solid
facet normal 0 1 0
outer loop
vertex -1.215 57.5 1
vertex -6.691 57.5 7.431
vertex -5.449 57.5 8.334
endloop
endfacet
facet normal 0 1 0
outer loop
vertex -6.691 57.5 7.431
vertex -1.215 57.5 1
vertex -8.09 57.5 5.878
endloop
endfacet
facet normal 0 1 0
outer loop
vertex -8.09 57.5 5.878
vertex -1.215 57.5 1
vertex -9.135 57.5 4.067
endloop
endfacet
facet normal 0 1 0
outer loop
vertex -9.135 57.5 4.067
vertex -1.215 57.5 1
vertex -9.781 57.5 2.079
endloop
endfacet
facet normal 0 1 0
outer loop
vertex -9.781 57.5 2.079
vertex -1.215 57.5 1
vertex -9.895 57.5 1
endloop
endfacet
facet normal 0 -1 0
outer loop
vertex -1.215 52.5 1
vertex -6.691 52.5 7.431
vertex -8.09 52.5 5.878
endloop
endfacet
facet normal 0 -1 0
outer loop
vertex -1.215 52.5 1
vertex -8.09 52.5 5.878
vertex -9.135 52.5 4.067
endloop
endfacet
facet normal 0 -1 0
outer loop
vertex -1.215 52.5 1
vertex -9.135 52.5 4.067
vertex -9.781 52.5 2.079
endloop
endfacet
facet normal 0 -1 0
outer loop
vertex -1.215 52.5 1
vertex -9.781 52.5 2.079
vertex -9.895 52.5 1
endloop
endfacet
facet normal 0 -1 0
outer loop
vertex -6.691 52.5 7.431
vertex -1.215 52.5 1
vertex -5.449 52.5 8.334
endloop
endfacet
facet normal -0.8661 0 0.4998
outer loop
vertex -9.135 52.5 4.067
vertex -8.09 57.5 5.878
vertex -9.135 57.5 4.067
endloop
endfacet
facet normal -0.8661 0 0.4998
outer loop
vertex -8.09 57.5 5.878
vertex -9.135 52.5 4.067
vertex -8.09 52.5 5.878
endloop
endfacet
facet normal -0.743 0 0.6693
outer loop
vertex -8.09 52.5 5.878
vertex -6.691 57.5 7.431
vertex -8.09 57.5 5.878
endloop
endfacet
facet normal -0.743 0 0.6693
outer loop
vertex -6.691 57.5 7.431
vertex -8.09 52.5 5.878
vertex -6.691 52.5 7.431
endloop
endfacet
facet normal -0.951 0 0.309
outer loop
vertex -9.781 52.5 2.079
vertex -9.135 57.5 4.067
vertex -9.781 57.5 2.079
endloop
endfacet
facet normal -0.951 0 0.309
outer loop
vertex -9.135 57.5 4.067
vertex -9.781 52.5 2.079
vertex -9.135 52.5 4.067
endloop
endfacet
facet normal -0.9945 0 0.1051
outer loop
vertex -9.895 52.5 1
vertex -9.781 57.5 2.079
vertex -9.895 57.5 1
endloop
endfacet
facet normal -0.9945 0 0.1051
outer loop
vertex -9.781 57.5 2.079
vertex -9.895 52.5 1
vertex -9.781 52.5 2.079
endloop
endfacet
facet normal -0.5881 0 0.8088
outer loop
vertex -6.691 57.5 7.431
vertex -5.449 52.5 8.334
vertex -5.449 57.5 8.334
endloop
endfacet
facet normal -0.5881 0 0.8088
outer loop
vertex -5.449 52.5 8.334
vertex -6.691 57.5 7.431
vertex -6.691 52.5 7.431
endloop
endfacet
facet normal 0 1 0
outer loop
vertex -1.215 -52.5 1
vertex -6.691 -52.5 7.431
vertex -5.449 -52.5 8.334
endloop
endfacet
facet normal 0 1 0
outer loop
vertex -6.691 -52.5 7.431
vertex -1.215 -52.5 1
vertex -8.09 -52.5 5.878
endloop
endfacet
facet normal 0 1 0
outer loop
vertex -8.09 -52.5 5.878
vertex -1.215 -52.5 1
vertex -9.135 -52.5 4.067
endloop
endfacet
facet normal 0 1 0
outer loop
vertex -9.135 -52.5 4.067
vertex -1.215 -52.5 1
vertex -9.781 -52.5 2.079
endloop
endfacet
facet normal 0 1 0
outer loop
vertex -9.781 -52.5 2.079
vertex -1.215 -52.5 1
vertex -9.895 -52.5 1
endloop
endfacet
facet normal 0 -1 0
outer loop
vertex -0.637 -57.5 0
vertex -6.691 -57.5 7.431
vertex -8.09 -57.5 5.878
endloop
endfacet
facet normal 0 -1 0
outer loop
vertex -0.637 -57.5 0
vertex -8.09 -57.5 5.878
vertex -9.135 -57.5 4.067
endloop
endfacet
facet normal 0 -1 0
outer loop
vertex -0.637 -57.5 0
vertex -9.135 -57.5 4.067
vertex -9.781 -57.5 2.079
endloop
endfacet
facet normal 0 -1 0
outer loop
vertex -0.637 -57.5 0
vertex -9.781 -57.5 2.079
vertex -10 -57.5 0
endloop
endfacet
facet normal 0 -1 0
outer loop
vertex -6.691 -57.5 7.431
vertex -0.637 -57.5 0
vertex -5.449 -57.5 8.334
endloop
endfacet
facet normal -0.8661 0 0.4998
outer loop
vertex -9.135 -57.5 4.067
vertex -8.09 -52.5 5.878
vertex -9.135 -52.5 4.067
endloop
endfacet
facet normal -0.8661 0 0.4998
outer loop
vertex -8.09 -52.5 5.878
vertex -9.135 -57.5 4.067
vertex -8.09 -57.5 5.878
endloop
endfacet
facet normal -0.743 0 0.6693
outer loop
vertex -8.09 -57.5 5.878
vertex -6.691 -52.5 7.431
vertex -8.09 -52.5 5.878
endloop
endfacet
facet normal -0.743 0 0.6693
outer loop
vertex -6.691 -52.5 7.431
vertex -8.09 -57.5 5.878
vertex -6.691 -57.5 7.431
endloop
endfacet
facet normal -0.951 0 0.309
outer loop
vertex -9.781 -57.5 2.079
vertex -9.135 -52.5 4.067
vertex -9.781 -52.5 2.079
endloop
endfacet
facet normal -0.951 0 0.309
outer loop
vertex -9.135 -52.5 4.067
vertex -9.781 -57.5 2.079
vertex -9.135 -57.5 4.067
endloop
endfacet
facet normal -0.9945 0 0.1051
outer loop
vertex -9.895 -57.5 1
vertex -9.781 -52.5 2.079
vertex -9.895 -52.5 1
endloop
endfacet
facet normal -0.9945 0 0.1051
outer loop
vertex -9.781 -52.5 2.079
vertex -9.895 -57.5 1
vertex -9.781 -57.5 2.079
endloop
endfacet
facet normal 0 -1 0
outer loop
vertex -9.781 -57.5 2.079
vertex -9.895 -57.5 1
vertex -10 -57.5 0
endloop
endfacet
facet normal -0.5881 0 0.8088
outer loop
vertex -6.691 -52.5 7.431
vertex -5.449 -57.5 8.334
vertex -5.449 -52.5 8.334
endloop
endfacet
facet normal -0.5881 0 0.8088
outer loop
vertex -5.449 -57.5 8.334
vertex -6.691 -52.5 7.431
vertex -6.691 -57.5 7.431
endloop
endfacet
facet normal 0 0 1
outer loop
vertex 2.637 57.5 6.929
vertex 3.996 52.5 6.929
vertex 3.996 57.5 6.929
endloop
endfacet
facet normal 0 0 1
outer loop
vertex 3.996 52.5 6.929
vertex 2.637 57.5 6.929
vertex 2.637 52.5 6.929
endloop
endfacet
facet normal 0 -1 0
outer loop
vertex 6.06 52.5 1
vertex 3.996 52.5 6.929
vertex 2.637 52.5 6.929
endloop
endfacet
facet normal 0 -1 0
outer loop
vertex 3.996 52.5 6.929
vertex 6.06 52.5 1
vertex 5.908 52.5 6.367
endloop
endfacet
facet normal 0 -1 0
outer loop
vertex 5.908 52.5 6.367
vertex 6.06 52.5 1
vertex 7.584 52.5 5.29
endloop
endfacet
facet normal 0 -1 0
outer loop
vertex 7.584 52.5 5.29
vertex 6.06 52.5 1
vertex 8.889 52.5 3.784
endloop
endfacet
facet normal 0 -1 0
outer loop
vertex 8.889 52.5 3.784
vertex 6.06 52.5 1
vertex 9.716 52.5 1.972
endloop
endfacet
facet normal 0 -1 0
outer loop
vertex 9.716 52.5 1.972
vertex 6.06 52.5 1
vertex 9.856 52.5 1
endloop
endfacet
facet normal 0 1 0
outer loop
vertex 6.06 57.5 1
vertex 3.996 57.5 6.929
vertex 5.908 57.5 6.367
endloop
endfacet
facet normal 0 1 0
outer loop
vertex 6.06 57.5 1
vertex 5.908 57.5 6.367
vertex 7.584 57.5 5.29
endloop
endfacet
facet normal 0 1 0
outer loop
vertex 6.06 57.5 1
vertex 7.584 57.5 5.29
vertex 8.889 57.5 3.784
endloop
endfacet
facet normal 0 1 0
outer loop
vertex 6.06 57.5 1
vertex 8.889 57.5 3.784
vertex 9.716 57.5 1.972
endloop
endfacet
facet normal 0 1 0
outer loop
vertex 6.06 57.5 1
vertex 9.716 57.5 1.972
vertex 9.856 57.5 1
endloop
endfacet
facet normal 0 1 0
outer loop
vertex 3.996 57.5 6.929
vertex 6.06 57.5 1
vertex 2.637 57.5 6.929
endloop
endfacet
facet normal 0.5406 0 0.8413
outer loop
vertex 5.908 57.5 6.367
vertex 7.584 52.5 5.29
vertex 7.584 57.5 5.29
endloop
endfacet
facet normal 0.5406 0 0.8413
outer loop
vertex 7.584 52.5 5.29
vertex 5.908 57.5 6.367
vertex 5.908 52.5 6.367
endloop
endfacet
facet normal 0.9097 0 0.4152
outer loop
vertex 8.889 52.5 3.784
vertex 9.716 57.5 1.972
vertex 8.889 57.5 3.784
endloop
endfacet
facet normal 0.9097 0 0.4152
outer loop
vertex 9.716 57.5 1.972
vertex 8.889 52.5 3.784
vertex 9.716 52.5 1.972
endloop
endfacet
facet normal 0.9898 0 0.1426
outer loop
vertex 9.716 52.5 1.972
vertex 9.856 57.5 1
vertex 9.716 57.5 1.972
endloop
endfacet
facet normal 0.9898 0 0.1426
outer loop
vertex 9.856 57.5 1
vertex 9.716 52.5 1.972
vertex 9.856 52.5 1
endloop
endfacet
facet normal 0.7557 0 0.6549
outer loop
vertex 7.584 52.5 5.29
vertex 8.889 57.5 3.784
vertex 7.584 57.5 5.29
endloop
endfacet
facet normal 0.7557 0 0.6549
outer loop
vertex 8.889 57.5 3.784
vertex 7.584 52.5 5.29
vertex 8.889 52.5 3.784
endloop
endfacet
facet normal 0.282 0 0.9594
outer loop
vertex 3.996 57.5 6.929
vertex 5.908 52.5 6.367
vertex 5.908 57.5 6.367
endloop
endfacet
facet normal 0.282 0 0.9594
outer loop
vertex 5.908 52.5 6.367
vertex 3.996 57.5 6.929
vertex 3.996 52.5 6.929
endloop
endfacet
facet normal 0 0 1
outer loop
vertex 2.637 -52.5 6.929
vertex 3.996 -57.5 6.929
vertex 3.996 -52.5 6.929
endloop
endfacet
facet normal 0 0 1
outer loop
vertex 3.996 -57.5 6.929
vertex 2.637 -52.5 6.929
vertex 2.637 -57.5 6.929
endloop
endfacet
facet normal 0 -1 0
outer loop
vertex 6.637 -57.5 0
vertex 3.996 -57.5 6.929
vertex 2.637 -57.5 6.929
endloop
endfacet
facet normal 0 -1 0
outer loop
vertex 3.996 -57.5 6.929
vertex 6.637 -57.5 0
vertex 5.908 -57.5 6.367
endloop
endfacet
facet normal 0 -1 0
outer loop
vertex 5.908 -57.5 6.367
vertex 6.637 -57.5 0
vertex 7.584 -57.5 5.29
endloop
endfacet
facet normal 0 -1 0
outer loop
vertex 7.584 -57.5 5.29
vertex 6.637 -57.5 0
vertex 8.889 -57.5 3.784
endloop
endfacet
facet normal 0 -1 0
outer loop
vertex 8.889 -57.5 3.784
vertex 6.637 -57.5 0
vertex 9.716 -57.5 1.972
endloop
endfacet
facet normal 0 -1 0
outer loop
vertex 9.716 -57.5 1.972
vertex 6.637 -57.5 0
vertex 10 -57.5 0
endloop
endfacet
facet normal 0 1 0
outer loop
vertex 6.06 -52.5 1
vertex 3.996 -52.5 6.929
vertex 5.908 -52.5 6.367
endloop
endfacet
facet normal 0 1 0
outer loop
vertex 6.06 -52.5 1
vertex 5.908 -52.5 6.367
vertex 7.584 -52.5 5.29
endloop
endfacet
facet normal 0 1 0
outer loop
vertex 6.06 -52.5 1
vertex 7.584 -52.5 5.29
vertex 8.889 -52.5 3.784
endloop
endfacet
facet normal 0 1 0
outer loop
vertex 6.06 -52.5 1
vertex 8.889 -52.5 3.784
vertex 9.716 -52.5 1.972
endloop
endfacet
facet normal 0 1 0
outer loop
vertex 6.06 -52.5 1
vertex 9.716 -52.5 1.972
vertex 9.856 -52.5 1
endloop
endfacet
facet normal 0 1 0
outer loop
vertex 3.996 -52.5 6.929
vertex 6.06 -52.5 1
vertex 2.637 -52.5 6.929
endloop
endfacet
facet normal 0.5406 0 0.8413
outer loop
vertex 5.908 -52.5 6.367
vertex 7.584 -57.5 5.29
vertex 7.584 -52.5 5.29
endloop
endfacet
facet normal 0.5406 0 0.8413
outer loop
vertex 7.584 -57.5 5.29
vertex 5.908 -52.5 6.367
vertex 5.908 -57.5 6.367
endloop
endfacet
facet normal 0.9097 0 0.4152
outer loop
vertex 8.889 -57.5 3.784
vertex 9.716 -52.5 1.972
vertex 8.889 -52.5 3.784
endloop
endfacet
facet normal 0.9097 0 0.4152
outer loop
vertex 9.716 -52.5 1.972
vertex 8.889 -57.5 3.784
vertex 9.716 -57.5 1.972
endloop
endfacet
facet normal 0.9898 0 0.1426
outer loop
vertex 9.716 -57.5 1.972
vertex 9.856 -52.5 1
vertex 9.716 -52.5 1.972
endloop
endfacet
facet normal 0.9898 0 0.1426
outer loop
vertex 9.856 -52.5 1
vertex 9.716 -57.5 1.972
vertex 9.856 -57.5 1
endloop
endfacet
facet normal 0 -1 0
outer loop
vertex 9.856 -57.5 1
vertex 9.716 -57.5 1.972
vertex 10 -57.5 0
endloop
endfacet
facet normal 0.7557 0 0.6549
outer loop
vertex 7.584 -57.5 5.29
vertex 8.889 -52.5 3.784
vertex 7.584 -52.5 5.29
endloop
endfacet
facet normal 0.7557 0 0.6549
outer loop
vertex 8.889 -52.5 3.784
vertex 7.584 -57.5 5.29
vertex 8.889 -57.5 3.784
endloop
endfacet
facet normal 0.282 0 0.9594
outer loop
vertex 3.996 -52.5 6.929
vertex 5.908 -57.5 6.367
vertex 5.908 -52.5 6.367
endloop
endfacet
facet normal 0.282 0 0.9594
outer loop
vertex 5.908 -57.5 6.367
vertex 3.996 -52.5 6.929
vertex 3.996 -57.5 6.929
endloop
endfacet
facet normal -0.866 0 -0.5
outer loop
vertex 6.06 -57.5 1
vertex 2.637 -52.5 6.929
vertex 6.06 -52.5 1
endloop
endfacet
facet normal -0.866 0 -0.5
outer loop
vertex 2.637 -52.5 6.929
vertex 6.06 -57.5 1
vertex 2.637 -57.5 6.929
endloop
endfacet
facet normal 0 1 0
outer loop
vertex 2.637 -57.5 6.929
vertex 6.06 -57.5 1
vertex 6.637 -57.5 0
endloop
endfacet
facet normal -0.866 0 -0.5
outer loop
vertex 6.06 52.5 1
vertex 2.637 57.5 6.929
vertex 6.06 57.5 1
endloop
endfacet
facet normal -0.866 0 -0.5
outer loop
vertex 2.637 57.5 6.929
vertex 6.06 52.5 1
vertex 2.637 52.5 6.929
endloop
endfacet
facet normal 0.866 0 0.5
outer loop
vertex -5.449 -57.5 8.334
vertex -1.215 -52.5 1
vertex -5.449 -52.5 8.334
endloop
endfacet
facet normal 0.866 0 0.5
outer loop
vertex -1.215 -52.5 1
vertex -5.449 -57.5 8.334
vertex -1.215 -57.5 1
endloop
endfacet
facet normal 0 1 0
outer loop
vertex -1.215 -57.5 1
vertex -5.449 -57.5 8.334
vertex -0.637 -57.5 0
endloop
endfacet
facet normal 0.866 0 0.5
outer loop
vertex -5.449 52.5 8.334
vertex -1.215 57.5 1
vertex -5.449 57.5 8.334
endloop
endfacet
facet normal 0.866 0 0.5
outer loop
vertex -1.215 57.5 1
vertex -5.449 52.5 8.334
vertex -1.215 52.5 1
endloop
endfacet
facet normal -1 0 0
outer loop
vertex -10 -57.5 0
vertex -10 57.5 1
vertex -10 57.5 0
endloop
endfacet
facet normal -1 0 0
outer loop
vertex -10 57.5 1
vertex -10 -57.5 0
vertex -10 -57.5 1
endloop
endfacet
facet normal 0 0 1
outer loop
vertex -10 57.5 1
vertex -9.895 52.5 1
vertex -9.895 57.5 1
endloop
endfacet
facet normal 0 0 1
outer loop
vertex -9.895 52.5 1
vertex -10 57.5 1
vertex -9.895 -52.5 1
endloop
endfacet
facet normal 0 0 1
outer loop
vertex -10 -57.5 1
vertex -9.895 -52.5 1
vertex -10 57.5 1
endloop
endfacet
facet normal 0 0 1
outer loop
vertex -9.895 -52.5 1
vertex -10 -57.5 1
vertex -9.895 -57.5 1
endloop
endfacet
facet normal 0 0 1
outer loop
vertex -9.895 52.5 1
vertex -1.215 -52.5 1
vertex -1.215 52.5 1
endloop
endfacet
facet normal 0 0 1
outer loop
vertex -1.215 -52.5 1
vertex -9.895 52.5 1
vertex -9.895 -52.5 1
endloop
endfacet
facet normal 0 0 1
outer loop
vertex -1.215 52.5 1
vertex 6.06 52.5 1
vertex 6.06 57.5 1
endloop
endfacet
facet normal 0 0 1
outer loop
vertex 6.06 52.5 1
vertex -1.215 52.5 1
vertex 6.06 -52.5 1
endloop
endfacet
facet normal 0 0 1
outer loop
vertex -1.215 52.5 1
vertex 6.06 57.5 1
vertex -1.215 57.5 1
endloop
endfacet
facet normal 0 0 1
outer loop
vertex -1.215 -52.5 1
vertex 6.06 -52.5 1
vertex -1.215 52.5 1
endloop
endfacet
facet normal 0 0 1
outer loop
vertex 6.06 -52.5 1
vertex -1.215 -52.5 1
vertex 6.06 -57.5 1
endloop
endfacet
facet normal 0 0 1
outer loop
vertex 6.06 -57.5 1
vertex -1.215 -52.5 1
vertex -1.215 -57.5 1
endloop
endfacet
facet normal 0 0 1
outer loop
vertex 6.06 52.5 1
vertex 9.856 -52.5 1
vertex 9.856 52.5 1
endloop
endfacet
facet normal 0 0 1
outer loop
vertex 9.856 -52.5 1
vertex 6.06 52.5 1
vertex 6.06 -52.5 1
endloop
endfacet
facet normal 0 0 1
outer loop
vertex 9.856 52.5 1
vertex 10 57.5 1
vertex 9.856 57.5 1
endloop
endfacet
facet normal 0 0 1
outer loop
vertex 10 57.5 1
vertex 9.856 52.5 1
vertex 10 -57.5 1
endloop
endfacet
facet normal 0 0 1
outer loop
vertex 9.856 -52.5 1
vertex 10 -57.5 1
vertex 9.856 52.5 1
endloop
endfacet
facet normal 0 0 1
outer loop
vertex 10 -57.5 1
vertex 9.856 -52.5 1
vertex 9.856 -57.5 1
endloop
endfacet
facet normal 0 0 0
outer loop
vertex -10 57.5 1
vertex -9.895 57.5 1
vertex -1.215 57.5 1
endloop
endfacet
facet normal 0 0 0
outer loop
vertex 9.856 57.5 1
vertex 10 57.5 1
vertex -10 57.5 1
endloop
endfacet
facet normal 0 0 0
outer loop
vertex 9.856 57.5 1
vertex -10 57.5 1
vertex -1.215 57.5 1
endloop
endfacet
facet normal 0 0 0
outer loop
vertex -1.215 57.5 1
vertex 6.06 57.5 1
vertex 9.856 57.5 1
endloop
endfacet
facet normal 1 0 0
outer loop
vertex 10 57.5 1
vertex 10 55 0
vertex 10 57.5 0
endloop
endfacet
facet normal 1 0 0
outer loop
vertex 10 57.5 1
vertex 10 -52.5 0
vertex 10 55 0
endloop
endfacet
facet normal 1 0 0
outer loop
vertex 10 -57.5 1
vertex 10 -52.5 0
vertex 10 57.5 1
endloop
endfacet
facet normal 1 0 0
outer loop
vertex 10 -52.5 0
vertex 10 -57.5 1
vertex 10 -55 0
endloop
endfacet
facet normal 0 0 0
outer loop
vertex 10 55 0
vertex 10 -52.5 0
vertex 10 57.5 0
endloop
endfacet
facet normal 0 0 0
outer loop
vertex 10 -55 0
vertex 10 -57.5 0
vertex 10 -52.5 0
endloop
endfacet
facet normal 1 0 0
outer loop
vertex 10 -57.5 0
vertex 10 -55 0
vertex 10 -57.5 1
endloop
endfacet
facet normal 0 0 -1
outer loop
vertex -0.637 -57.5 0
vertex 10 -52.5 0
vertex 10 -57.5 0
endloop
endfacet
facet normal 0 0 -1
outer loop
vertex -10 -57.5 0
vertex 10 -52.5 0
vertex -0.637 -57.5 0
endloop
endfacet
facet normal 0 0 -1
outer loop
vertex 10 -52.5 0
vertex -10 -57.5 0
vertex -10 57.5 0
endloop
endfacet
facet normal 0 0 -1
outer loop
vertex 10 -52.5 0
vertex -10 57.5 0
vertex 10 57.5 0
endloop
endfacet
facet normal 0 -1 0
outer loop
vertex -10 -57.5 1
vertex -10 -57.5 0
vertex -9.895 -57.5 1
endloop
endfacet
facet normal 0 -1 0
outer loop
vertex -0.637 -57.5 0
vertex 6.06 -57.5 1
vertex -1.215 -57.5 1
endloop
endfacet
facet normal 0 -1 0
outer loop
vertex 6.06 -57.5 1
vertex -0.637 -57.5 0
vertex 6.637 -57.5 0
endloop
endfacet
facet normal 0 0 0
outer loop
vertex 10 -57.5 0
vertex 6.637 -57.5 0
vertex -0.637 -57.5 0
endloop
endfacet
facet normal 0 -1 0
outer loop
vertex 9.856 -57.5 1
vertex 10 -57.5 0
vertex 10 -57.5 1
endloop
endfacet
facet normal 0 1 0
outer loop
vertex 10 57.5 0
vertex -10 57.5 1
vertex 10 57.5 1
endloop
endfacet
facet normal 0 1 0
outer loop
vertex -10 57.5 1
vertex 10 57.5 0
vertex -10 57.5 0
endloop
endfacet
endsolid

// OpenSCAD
//translate([-10, -70, -1]) cube([20, 140, 1]);
translate([-10, -57.5, 0]) cube([20, 115, 1]);


difference() {
    topBase();
    ipod(30, 3);
}


module topBase() {


translate([3, 55, 0]) rotate([0, 0, 180]) foot(-30, -1, 7);
translate([3, -55, 0]) rotate([0, 0, 180]) foot(-30, -1, 7);


translate([0, 55, 0]) foot(30, 3, 10);
translate([0, -55, 0]) foot(30, 3, 10);
}



module ipod(angle, offset) {
thickness = 6.3;
length = 123.4;
    translate([offset, 0, 0])
    rotate([0, -angle, 0])
translate([-thickness/2, -length/2, -4]) color("red") cube([thickness, length, 60]);

}

module foot(angle, offset, radius) {
    thickness = 5;
    
    difference() {
        translate([0, -thickness/2, 0])
        rotate([-90, 0, 0])
            difference() {
                cylinder(thickness, r=radius);
                translate([-11, 0, -1]) color("blue") cube([22, 22, thickness+2]);
            }
        
            translate([offset, 0, 0])
        rotate([0, -angle, 0])
        translate([0, -(thickness+2)/2, -(radius+1)]) 
            color("green") cube([4*radius, thickness+2, 4*radius]);
        }
}

// 123.4 mm
// 58.6 mm
// 6.1 mm (thick)
